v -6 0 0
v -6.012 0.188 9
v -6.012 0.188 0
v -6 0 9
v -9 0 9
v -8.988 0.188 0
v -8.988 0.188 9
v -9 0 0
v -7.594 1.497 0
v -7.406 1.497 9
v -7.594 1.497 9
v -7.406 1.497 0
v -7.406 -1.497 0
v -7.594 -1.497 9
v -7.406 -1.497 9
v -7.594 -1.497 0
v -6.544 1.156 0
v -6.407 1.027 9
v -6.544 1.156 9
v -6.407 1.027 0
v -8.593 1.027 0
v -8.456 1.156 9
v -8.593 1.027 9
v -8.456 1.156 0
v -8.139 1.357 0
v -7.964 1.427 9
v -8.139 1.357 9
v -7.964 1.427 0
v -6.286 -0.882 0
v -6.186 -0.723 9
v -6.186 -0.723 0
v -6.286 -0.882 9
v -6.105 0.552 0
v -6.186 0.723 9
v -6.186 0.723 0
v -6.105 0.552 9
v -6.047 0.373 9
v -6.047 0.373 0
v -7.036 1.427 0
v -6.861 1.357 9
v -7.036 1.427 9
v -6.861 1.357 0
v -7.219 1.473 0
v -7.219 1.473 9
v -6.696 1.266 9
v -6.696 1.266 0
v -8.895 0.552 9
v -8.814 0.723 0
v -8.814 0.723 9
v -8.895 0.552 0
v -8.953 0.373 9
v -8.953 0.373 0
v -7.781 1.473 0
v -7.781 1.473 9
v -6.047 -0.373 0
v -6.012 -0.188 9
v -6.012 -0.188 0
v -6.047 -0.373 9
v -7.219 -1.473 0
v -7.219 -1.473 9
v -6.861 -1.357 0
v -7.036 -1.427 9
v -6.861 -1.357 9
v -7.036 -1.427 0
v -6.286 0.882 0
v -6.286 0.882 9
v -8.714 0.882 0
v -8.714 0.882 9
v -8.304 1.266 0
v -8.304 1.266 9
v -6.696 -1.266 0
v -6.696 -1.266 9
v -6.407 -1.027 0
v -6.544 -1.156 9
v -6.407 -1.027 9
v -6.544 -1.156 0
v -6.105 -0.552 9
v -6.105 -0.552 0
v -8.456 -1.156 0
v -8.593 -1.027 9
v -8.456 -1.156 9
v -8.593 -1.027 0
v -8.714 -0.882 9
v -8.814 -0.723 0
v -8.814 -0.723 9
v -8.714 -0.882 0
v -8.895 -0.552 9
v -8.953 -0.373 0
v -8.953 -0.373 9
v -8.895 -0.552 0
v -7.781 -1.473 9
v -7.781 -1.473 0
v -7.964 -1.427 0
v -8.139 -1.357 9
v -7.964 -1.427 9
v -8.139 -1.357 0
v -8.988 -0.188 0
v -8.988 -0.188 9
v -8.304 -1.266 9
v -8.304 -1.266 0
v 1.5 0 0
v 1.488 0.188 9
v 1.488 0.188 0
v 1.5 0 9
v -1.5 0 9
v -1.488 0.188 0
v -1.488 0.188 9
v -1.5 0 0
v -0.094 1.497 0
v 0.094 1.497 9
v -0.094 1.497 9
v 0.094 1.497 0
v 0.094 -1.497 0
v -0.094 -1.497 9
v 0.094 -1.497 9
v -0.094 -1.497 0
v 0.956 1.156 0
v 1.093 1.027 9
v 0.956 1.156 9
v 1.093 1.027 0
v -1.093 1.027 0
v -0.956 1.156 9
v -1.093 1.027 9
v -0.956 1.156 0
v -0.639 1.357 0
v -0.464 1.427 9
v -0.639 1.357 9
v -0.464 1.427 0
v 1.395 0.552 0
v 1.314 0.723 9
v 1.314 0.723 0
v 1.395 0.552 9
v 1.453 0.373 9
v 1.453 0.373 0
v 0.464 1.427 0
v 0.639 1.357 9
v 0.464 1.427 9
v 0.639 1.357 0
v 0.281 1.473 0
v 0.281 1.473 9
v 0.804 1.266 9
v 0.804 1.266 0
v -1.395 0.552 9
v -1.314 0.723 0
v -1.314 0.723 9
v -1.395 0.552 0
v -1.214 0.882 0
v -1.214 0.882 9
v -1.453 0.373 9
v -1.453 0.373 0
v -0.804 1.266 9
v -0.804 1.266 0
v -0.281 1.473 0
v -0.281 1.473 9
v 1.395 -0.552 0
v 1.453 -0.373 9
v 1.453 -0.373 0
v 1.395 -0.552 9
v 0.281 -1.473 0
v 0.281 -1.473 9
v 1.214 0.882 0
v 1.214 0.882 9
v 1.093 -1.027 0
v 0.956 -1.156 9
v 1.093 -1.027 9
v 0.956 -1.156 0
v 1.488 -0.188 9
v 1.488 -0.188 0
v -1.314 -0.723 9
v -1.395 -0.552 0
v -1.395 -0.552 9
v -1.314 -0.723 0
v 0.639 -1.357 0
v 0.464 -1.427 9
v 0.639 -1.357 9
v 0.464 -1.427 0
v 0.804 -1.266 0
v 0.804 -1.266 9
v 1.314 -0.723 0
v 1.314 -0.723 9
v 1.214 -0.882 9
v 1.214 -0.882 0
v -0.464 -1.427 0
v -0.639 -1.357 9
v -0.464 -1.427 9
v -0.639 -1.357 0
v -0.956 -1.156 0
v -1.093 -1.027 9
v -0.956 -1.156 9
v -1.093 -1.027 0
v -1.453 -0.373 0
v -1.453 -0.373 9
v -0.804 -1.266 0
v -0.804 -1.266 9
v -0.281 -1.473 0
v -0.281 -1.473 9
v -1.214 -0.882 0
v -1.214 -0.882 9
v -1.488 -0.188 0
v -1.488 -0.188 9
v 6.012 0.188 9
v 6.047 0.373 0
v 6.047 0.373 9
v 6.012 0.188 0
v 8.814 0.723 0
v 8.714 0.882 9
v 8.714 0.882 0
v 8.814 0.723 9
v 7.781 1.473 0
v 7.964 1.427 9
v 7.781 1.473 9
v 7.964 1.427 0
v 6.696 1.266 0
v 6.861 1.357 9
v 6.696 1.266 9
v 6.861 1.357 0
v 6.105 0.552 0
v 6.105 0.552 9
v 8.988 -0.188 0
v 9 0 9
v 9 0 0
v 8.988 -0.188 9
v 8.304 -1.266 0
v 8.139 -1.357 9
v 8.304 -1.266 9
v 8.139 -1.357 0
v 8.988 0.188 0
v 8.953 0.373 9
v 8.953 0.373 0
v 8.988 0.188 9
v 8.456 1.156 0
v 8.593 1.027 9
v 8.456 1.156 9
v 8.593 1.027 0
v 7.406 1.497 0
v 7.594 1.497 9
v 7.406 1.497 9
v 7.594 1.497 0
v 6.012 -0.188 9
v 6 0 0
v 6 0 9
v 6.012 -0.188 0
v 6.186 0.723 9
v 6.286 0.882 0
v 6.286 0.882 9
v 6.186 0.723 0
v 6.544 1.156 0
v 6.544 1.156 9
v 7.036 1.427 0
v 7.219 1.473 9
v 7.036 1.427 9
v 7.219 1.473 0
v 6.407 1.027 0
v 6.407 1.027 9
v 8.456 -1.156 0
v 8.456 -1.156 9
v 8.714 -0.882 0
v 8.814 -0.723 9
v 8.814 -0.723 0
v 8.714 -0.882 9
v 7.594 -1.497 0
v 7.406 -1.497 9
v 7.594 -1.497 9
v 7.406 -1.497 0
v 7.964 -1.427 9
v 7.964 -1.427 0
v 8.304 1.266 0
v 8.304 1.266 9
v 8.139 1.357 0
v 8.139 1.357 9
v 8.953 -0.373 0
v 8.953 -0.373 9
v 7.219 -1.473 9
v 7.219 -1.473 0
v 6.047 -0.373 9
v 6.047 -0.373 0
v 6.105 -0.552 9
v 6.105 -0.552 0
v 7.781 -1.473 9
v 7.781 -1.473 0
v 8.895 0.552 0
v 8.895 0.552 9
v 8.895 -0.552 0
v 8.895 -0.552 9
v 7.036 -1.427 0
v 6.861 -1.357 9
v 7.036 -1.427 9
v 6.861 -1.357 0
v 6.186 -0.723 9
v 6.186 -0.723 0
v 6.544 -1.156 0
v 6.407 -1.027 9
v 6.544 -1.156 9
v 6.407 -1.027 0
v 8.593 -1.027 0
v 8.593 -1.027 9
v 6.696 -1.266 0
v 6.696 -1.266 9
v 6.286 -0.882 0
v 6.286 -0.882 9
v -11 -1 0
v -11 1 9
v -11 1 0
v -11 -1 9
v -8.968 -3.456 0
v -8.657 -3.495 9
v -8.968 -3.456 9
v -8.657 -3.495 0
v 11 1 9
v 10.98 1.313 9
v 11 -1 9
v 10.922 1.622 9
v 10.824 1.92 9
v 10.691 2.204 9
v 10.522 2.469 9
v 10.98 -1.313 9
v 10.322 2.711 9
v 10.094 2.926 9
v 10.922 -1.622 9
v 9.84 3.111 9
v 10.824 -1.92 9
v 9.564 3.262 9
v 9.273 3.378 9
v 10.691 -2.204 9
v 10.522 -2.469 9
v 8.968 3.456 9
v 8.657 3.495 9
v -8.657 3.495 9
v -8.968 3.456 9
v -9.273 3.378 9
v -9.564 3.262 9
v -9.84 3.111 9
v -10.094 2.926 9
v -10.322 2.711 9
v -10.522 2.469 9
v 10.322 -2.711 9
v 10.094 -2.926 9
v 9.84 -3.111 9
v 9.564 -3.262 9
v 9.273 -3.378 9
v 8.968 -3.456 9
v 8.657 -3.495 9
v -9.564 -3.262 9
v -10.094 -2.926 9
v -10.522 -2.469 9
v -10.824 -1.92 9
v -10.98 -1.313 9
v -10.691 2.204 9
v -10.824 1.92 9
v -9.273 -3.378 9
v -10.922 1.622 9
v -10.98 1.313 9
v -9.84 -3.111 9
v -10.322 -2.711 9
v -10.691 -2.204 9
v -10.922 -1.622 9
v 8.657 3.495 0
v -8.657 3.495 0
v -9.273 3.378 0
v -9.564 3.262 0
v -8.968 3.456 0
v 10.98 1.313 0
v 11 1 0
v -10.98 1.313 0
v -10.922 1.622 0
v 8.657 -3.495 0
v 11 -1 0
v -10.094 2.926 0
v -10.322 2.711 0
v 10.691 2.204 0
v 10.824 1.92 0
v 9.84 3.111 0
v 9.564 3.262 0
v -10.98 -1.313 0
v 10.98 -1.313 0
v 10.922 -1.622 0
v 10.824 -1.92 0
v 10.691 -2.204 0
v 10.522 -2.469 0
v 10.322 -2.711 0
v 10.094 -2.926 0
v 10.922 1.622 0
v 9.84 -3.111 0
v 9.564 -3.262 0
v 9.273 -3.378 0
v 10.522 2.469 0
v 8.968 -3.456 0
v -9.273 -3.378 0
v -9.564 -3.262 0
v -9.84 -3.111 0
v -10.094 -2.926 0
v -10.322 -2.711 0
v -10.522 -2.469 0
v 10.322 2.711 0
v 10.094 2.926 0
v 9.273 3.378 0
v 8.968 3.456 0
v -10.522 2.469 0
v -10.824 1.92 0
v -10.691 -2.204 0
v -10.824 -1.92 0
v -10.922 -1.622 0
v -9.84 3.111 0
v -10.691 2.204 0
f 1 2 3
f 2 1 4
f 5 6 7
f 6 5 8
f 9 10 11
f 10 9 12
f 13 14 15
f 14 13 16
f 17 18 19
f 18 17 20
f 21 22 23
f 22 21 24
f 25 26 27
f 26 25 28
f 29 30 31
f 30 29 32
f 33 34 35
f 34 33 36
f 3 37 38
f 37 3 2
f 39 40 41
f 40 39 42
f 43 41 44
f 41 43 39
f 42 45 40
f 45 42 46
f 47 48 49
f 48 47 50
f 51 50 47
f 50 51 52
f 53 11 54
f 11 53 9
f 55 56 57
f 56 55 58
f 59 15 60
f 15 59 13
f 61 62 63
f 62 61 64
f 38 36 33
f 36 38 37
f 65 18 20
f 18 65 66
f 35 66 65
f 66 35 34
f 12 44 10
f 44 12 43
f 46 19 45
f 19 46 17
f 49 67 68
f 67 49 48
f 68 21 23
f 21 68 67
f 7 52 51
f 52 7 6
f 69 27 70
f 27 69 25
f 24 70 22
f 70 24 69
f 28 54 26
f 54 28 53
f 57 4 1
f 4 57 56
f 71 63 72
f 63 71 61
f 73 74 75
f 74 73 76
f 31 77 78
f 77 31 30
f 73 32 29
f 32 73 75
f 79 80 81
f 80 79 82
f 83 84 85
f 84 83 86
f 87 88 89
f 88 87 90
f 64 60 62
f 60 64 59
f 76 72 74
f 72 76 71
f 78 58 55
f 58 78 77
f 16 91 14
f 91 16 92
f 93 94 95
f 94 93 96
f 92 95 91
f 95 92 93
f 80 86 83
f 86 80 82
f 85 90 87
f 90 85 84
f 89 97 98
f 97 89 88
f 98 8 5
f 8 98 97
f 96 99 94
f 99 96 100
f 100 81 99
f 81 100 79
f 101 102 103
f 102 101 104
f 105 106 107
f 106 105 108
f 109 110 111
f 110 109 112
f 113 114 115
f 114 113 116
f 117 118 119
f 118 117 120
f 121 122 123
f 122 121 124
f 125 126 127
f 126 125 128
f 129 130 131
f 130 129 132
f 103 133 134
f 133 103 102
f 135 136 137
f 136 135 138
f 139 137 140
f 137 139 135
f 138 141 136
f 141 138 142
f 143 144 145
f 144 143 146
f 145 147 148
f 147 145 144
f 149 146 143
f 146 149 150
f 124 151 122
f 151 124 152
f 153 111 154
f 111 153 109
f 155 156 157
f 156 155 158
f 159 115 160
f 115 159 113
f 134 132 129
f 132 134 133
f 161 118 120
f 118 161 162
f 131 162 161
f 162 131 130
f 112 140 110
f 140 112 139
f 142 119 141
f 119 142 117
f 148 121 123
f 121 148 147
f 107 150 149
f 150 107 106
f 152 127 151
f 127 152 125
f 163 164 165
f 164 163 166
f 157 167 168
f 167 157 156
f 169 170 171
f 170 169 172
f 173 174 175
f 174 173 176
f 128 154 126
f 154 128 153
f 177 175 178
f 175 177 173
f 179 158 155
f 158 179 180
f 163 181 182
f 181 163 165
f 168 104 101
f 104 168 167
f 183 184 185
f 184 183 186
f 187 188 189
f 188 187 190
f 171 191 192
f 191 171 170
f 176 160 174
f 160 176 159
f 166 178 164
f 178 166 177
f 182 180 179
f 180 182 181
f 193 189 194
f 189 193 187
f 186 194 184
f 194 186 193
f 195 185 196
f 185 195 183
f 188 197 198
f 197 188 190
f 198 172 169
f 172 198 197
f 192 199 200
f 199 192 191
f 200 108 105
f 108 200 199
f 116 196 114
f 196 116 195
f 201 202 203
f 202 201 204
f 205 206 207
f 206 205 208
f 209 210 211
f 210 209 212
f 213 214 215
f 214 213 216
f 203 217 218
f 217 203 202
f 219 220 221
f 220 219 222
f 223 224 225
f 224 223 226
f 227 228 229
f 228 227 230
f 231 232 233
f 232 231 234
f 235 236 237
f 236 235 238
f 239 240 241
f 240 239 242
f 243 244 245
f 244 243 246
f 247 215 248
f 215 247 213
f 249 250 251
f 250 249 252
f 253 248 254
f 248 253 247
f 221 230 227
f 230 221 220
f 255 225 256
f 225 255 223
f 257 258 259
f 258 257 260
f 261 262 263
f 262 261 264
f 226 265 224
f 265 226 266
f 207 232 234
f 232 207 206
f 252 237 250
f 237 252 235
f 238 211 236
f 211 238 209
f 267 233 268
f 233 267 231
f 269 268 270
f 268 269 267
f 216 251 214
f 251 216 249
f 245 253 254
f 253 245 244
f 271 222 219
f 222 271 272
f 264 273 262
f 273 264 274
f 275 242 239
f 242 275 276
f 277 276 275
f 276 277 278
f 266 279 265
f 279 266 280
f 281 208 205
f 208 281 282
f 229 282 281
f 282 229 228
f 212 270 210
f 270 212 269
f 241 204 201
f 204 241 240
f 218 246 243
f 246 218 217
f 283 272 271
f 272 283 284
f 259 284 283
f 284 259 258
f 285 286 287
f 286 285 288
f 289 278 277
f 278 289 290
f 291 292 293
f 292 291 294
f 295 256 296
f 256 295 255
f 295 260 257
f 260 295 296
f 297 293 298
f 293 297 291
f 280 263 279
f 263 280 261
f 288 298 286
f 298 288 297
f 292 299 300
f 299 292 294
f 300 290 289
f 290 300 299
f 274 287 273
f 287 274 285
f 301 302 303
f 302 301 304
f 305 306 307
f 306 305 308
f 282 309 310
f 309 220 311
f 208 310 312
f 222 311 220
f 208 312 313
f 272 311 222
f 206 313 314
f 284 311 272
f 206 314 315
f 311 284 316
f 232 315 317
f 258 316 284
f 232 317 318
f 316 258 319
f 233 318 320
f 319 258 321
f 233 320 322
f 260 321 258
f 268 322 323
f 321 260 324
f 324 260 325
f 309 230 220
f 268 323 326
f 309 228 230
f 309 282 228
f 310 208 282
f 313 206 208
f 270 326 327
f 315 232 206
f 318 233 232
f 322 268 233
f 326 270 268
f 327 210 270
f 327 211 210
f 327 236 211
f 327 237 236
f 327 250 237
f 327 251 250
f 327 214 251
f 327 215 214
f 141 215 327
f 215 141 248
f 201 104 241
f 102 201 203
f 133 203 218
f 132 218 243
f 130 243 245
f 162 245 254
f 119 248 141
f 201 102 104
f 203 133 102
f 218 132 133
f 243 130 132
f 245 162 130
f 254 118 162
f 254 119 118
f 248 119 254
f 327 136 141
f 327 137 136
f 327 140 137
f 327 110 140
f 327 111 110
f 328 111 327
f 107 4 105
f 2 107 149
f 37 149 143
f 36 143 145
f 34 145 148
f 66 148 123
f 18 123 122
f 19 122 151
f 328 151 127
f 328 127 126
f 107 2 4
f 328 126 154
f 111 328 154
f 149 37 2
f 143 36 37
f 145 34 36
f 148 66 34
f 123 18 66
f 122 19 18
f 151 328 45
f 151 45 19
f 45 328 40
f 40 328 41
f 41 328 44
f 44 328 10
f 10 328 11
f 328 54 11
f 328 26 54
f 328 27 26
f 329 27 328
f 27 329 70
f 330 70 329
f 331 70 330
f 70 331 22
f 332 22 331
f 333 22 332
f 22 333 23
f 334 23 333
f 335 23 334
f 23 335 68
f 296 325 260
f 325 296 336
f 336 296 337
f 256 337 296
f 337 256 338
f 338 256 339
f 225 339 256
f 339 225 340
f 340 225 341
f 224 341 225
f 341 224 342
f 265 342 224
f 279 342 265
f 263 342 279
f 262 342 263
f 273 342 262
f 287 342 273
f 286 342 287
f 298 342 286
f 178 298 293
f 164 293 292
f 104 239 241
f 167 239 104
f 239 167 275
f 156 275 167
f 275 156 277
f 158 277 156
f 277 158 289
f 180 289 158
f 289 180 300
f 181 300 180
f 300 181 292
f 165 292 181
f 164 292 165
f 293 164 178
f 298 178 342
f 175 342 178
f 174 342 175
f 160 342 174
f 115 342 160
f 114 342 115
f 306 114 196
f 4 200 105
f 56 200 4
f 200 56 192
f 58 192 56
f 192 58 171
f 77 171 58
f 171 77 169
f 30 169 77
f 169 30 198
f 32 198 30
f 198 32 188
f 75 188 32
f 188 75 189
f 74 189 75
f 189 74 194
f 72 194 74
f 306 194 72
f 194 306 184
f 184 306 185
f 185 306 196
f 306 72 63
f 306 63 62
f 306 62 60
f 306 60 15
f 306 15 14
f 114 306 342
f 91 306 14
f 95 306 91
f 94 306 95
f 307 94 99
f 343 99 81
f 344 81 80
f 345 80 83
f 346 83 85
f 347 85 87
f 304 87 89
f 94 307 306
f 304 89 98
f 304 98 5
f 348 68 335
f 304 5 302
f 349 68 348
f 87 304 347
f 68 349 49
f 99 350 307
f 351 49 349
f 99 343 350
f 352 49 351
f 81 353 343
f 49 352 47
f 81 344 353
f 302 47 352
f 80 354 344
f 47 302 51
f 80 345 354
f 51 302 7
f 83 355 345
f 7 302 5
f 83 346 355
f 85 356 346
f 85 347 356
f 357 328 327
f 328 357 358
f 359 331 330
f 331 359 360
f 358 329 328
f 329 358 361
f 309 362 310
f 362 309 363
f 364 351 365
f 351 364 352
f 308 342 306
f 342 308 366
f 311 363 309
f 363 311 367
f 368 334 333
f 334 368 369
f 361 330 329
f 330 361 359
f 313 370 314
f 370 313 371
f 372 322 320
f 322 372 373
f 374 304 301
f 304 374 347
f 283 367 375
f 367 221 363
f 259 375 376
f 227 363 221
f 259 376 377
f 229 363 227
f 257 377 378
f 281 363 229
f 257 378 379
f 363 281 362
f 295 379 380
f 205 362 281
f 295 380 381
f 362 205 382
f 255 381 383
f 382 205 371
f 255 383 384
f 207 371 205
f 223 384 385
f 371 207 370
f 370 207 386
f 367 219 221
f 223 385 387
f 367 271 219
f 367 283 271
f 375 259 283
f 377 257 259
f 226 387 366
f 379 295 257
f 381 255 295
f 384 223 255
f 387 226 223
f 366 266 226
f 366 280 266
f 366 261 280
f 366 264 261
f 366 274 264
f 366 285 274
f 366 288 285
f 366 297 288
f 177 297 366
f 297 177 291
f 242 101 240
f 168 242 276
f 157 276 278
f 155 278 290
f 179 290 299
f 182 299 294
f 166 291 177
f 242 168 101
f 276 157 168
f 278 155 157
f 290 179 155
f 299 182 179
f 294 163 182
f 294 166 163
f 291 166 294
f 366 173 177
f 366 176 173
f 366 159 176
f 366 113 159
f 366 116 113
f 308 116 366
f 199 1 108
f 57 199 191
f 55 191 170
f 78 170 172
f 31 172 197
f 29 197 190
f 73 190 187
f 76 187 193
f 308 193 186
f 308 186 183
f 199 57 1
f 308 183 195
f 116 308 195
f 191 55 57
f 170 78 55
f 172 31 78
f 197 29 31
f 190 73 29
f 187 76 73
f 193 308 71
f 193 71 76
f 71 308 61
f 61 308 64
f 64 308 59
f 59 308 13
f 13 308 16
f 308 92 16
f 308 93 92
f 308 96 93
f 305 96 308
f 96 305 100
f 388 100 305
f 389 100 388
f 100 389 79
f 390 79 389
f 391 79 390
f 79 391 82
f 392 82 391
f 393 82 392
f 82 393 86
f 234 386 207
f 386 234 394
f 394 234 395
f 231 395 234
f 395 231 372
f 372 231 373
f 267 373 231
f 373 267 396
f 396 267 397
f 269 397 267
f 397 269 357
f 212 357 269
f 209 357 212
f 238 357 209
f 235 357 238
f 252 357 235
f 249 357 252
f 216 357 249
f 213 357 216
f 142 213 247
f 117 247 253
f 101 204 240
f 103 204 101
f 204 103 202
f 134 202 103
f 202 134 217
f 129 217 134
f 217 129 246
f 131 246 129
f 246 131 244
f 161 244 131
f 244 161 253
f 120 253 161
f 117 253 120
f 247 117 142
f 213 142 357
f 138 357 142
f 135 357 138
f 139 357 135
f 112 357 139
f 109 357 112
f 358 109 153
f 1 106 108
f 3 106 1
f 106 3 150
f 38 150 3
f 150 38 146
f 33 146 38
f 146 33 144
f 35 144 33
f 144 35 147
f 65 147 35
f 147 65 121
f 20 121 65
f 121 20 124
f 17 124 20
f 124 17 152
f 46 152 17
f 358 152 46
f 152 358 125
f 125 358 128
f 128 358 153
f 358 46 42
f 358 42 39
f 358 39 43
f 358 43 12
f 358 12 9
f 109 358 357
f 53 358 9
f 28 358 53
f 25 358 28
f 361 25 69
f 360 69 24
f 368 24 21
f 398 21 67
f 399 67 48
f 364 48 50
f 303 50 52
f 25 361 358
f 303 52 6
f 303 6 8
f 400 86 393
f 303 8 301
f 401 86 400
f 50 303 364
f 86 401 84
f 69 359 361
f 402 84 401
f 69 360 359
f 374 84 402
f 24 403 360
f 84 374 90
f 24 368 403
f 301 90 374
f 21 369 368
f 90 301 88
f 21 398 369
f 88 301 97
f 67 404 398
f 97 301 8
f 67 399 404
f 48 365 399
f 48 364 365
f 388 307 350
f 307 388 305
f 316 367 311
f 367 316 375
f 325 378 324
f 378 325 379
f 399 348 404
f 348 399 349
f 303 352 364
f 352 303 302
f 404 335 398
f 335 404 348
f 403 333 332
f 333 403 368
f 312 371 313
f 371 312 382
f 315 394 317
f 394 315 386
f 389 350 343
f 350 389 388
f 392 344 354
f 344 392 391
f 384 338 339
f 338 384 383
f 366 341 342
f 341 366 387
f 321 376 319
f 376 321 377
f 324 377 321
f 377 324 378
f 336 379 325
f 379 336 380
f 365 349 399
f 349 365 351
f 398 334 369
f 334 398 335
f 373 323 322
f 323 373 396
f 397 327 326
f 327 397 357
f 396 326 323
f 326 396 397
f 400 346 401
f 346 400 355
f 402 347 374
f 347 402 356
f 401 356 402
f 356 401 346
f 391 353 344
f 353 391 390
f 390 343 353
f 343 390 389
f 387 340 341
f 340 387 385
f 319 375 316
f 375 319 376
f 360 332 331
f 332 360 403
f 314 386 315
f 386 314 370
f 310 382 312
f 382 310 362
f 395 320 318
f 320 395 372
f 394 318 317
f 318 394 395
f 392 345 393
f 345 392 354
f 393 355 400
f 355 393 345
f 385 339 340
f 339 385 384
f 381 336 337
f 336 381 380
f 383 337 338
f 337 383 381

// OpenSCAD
$fn = 50;


difference() {
	union() {
		translate(v = [0, 0, 0]) {
			rotate(a = [0, 0, 0]) {
				hull() {
					translate(v = [-8.5000000000, 1.0000000000, 0]) {
						rotate(a = [0, 0, 0]) {
							translate(v = [0, 0, 0]) {
								rotate(a = [0, 0, 0]) {
									cylinder(h = 9, r = 2.5000000000);
								}
							}
						}
					}
					translate(v = [8.5000000000, 1.0000000000, 0]) {
						rotate(a = [0, 0, 0]) {
							translate(v = [0, 0, 0]) {
								rotate(a = [0, 0, 0]) {
									cylinder(h = 9, r = 2.5000000000);
								}
							}
						}
					}
					translate(v = [-8.5000000000, -1.0000000000, 0]) {
						rotate(a = [0, 0, 0]) {
							translate(v = [0, 0, 0]) {
								rotate(a = [0, 0, 0]) {
									cylinder(h = 9, r = 2.5000000000);
								}
							}
						}
					}
					translate(v = [8.5000000000, -1.0000000000, 0]) {
						rotate(a = [0, 0, 0]) {
							translate(v = [0, 0, 0]) {
								rotate(a = [0, 0, 0]) {
									cylinder(h = 9, r = 2.5000000000);
								}
							}
						}
					}
				}
			}
		}
	}
	union() {
		translate(v = [-7.5000000000, 0.0000000000, 0]) {
			rotate(a = [0, 0, 0]) {
				translate(v = [0, 0, -50]) {
					rotate(a = [0, 0, 0]) {
						cylinder(h = 100, r = 1.5000000000);
					}
				}
			}
		}
		translate(v = [0.0000000000, 0.0000000000, 0]) {
			rotate(a = [0, 0, 0]) {
				translate(v = [0, 0, -50]) {
					rotate(a = [0, 0, 0]) {
						cylinder(h = 100, r = 1.5000000000);
					}
				}
			}
		}
		translate(v = [7.5000000000, 0.0000000000, 0]) {
			rotate(a = [0, 0, 0]) {
				translate(v = [0, 0, -50]) {
					rotate(a = [0, 0, 0]) {
						cylinder(h = 100, r = 1.5000000000);
					}
				}
			}
		}
	}
}
